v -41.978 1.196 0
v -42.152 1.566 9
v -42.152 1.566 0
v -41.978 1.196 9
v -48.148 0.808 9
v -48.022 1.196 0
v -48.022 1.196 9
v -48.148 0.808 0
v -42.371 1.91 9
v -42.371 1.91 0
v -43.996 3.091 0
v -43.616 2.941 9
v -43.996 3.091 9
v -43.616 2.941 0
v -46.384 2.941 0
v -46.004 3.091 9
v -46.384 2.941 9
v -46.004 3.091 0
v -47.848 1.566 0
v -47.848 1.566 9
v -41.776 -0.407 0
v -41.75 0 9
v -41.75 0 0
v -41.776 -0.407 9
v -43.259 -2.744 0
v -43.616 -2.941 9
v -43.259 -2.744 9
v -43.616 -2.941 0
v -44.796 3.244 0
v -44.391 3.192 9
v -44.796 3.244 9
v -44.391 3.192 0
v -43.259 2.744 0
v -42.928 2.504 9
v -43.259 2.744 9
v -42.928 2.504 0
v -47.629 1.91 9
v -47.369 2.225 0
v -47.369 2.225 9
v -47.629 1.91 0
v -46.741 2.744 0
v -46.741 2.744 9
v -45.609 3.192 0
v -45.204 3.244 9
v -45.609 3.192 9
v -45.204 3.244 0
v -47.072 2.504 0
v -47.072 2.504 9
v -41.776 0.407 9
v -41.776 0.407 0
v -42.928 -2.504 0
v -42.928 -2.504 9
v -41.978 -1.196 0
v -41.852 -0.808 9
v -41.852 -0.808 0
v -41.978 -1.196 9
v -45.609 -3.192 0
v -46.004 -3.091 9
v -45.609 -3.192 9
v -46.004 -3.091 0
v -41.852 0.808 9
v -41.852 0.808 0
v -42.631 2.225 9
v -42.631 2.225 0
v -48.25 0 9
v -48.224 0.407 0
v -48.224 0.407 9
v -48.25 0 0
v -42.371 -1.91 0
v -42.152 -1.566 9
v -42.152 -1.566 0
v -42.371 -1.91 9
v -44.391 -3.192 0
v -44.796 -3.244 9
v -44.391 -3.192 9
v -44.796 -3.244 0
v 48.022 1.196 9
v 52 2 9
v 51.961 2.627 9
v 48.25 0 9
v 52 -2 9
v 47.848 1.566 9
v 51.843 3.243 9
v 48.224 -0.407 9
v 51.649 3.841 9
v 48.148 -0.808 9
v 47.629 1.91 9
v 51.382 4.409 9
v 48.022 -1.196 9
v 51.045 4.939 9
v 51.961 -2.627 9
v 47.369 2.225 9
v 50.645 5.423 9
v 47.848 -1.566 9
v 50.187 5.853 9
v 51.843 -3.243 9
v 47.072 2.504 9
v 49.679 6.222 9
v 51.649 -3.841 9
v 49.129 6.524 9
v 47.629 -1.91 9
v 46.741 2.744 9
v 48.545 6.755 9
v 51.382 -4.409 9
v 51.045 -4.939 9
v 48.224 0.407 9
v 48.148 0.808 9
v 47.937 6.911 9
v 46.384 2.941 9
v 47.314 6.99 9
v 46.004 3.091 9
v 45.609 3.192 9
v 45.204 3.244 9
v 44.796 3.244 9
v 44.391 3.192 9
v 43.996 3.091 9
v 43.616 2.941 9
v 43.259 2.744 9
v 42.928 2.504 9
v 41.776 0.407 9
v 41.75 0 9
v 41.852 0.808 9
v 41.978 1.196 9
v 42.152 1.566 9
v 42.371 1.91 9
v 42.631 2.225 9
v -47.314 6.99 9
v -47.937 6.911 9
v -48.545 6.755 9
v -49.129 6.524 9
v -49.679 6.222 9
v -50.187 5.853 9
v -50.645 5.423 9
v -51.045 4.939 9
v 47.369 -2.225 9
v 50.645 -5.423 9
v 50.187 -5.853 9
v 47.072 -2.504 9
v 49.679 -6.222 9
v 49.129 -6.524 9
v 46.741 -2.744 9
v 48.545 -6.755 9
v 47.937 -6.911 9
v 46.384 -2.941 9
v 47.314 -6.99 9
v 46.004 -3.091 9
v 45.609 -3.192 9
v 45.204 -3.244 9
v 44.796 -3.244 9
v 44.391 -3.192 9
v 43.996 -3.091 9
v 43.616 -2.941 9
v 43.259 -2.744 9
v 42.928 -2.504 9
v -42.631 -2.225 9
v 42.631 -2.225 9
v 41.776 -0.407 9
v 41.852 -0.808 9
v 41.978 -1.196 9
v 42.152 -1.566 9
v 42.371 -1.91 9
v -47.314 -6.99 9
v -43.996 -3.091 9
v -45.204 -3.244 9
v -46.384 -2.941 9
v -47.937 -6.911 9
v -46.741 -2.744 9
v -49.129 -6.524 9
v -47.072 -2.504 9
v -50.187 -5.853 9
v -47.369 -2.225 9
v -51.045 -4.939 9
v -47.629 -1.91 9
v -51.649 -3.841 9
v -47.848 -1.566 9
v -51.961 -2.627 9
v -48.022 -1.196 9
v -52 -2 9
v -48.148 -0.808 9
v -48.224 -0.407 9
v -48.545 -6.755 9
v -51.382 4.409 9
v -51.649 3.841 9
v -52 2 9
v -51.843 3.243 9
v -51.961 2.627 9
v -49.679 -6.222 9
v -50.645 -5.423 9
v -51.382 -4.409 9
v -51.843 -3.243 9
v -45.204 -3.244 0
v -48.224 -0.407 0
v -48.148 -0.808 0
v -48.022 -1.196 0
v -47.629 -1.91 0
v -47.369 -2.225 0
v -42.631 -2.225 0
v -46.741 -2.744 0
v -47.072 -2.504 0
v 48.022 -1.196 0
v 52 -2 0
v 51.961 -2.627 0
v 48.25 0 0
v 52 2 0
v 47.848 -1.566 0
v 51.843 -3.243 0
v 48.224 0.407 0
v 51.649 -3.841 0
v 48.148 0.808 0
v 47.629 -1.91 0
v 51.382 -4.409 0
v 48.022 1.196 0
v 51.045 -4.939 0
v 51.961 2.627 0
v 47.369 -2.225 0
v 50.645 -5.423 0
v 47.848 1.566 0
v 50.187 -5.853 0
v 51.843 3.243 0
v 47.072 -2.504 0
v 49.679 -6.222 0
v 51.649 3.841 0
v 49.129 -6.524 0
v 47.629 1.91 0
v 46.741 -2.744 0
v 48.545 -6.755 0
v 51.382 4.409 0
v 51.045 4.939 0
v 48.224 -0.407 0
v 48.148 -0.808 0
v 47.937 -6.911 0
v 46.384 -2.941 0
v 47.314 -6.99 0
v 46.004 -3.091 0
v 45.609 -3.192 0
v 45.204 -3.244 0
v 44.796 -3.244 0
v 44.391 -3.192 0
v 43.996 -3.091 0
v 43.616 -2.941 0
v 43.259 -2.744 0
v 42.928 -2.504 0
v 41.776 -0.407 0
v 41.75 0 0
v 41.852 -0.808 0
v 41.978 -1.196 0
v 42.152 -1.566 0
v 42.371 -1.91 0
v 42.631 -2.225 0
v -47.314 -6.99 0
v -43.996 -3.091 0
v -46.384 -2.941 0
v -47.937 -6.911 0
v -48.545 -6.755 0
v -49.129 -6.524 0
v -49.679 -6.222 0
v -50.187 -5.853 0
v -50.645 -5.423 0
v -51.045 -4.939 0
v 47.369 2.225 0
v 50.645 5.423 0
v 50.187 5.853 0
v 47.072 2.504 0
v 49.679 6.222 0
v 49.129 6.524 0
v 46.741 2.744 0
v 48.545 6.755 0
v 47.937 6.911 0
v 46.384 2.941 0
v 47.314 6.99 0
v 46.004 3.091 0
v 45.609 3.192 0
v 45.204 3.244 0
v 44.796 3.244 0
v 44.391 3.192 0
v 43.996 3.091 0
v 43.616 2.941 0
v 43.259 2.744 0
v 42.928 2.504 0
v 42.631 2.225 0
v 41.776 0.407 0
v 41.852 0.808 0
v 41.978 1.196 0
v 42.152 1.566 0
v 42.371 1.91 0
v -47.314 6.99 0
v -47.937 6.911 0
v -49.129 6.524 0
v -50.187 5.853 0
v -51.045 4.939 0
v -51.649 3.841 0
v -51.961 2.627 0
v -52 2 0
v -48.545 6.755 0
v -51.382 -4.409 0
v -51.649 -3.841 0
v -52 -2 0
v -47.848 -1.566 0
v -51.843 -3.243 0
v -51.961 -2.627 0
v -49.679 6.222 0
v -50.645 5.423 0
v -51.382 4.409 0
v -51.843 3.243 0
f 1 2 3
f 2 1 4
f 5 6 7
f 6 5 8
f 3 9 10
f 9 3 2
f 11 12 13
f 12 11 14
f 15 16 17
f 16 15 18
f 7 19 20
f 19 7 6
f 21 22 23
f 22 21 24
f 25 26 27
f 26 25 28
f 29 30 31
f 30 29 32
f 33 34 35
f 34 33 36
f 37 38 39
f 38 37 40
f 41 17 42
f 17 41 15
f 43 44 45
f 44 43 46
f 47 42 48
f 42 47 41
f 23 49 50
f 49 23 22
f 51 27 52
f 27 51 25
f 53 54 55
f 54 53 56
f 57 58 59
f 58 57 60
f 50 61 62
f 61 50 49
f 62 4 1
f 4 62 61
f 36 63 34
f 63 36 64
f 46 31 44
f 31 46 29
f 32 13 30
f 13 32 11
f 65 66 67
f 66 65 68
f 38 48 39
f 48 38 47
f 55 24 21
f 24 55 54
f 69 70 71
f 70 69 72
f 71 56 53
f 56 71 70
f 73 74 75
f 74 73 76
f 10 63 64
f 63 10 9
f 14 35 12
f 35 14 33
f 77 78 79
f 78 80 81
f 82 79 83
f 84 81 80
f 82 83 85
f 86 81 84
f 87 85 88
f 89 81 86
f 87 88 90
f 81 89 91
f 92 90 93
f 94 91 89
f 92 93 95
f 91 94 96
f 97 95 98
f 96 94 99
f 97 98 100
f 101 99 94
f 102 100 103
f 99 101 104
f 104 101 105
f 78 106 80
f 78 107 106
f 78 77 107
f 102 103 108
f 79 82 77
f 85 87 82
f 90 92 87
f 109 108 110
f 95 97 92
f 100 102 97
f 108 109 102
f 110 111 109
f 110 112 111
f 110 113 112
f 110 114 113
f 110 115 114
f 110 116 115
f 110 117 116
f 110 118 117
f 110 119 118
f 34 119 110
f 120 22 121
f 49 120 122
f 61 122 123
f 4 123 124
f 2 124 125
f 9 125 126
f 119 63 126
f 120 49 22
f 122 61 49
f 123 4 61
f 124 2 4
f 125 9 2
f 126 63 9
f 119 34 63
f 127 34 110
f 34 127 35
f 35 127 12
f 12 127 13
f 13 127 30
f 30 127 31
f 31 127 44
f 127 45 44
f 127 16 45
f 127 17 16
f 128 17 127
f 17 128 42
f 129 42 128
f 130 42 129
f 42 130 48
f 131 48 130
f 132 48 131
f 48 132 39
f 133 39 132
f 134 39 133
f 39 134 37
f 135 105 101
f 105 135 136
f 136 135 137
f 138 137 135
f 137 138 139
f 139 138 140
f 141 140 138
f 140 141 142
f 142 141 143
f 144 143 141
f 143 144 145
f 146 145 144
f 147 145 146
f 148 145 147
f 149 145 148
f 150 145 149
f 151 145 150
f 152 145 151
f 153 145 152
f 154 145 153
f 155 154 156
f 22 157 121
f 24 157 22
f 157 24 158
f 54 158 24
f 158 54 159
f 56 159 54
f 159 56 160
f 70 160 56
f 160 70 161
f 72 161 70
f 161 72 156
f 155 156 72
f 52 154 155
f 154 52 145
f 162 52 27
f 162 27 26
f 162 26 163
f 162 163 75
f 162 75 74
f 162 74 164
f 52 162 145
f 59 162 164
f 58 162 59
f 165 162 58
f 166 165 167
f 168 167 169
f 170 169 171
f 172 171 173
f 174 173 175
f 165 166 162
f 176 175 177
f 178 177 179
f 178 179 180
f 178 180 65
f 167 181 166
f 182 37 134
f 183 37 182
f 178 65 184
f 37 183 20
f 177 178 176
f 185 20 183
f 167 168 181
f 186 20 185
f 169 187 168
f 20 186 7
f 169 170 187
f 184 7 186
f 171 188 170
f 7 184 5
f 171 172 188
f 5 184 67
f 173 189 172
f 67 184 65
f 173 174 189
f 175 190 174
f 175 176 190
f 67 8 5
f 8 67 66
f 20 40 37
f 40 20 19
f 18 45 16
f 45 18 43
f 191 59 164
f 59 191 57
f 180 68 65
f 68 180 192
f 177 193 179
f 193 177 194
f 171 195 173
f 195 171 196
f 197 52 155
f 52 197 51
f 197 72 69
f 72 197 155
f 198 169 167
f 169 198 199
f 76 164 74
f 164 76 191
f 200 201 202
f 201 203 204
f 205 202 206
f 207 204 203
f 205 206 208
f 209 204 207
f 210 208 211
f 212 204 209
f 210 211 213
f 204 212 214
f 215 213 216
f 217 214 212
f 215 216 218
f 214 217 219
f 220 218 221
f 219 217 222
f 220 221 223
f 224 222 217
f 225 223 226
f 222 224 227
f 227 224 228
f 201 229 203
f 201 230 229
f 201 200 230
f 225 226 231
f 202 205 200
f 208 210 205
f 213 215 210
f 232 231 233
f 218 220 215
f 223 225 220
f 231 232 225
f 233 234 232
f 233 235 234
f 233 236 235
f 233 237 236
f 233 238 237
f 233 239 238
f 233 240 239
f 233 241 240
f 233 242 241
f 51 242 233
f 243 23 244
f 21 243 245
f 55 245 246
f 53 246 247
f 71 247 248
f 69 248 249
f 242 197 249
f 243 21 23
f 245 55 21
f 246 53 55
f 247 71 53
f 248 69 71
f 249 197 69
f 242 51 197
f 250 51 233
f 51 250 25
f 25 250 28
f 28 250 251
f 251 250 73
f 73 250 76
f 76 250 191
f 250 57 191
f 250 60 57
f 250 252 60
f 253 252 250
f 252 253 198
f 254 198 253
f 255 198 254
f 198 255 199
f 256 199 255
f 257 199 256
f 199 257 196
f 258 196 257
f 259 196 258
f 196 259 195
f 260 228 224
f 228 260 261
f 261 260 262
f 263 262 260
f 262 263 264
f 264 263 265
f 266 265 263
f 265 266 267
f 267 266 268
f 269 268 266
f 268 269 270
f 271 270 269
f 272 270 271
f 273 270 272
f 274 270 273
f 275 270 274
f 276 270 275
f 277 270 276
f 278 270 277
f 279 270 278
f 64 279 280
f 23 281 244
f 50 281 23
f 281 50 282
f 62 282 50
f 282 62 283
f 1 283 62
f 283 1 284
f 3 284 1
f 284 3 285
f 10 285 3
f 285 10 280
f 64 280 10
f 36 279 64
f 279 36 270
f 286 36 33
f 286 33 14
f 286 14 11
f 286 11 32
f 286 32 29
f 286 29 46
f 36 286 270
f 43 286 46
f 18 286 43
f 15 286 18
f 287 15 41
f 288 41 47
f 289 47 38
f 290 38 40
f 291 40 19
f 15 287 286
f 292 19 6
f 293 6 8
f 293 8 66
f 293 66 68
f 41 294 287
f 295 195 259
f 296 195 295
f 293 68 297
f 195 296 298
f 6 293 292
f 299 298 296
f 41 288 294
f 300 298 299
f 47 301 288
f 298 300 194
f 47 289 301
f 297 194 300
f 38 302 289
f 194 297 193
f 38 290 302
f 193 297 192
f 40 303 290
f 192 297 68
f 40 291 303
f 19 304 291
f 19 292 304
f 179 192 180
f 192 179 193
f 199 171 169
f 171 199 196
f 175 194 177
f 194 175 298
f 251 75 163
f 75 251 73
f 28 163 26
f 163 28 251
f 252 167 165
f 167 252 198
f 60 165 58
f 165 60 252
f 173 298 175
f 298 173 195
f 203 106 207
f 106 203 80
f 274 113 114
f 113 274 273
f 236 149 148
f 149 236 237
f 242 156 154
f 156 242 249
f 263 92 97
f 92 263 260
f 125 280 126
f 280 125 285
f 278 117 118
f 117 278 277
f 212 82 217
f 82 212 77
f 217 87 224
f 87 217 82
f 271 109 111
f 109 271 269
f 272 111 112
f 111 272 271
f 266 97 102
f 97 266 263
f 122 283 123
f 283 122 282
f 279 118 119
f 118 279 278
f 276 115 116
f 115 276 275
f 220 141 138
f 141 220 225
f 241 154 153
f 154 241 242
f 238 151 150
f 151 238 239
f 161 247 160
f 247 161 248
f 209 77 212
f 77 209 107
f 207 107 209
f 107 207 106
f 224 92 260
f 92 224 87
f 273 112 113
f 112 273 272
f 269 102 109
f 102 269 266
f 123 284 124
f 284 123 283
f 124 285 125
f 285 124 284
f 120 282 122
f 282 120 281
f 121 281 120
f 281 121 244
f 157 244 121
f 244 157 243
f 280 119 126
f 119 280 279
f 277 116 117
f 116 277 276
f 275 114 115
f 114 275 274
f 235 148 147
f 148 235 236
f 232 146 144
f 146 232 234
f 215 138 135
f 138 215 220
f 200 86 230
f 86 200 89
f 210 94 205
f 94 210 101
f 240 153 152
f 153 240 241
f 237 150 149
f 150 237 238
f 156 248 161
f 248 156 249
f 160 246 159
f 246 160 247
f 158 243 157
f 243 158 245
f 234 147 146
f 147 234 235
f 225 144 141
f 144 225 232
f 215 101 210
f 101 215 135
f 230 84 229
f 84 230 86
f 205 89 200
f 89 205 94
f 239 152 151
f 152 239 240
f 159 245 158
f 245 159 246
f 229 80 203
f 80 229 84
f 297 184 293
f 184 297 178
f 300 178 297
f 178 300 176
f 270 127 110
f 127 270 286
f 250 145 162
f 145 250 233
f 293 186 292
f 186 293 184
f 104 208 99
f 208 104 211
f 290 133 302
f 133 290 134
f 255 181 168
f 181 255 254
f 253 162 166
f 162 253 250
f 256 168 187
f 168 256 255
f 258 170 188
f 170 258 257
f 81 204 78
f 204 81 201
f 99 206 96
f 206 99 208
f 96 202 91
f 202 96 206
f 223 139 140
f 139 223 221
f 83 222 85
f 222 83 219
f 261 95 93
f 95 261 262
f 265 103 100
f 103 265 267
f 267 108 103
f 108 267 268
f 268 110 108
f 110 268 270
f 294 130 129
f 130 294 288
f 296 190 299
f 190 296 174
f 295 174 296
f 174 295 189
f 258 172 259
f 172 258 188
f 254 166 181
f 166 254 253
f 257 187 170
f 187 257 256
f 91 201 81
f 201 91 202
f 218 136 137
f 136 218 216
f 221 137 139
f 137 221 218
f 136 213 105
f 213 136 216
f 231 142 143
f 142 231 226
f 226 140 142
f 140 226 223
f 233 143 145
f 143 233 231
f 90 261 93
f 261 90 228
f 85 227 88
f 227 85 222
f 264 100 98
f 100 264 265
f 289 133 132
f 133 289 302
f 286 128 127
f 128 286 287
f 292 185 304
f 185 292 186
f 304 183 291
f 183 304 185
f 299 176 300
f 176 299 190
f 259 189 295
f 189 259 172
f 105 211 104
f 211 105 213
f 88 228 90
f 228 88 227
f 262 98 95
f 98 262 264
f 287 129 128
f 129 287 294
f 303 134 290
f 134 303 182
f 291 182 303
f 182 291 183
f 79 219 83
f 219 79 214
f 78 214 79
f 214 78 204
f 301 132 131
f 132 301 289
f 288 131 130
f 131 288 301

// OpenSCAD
$fn = 50;


difference() {
	union() {
		hull() {
			translate(v = [-47.0000000000, 2.0000000000, 0]) {
				cylinder(h = 9, r = 5);
			}
			translate(v = [47.0000000000, 2.0000000000, 0]) {
				cylinder(h = 9, r = 5);
			}
			translate(v = [-47.0000000000, -2.0000000000, 0]) {
				cylinder(h = 9, r = 5);
			}
			translate(v = [47.0000000000, -2.0000000000, 0]) {
				cylinder(h = 9, r = 5);
			}
		}
	}
	union() {
		translate(v = [-45.0000000000, 0.0000000000, -100.0000000000]) {
			cylinder(h = 200, r = 3.2500000000);
		}
		translate(v = [-45.0000000000, 0.0000000000, -100.0000000000]) {
			cylinder(h = 200, r = 3.2500000000);
		}
		translate(v = [45.0000000000, 0.0000000000, -100.0000000000]) {
			cylinder(h = 200, r = 3.2500000000);
		}
		translate(v = [45.0000000000, 0.0000000000, -100.0000000000]) {
			cylinder(h = 200, r = 3.2500000000);
		}
	}
}
